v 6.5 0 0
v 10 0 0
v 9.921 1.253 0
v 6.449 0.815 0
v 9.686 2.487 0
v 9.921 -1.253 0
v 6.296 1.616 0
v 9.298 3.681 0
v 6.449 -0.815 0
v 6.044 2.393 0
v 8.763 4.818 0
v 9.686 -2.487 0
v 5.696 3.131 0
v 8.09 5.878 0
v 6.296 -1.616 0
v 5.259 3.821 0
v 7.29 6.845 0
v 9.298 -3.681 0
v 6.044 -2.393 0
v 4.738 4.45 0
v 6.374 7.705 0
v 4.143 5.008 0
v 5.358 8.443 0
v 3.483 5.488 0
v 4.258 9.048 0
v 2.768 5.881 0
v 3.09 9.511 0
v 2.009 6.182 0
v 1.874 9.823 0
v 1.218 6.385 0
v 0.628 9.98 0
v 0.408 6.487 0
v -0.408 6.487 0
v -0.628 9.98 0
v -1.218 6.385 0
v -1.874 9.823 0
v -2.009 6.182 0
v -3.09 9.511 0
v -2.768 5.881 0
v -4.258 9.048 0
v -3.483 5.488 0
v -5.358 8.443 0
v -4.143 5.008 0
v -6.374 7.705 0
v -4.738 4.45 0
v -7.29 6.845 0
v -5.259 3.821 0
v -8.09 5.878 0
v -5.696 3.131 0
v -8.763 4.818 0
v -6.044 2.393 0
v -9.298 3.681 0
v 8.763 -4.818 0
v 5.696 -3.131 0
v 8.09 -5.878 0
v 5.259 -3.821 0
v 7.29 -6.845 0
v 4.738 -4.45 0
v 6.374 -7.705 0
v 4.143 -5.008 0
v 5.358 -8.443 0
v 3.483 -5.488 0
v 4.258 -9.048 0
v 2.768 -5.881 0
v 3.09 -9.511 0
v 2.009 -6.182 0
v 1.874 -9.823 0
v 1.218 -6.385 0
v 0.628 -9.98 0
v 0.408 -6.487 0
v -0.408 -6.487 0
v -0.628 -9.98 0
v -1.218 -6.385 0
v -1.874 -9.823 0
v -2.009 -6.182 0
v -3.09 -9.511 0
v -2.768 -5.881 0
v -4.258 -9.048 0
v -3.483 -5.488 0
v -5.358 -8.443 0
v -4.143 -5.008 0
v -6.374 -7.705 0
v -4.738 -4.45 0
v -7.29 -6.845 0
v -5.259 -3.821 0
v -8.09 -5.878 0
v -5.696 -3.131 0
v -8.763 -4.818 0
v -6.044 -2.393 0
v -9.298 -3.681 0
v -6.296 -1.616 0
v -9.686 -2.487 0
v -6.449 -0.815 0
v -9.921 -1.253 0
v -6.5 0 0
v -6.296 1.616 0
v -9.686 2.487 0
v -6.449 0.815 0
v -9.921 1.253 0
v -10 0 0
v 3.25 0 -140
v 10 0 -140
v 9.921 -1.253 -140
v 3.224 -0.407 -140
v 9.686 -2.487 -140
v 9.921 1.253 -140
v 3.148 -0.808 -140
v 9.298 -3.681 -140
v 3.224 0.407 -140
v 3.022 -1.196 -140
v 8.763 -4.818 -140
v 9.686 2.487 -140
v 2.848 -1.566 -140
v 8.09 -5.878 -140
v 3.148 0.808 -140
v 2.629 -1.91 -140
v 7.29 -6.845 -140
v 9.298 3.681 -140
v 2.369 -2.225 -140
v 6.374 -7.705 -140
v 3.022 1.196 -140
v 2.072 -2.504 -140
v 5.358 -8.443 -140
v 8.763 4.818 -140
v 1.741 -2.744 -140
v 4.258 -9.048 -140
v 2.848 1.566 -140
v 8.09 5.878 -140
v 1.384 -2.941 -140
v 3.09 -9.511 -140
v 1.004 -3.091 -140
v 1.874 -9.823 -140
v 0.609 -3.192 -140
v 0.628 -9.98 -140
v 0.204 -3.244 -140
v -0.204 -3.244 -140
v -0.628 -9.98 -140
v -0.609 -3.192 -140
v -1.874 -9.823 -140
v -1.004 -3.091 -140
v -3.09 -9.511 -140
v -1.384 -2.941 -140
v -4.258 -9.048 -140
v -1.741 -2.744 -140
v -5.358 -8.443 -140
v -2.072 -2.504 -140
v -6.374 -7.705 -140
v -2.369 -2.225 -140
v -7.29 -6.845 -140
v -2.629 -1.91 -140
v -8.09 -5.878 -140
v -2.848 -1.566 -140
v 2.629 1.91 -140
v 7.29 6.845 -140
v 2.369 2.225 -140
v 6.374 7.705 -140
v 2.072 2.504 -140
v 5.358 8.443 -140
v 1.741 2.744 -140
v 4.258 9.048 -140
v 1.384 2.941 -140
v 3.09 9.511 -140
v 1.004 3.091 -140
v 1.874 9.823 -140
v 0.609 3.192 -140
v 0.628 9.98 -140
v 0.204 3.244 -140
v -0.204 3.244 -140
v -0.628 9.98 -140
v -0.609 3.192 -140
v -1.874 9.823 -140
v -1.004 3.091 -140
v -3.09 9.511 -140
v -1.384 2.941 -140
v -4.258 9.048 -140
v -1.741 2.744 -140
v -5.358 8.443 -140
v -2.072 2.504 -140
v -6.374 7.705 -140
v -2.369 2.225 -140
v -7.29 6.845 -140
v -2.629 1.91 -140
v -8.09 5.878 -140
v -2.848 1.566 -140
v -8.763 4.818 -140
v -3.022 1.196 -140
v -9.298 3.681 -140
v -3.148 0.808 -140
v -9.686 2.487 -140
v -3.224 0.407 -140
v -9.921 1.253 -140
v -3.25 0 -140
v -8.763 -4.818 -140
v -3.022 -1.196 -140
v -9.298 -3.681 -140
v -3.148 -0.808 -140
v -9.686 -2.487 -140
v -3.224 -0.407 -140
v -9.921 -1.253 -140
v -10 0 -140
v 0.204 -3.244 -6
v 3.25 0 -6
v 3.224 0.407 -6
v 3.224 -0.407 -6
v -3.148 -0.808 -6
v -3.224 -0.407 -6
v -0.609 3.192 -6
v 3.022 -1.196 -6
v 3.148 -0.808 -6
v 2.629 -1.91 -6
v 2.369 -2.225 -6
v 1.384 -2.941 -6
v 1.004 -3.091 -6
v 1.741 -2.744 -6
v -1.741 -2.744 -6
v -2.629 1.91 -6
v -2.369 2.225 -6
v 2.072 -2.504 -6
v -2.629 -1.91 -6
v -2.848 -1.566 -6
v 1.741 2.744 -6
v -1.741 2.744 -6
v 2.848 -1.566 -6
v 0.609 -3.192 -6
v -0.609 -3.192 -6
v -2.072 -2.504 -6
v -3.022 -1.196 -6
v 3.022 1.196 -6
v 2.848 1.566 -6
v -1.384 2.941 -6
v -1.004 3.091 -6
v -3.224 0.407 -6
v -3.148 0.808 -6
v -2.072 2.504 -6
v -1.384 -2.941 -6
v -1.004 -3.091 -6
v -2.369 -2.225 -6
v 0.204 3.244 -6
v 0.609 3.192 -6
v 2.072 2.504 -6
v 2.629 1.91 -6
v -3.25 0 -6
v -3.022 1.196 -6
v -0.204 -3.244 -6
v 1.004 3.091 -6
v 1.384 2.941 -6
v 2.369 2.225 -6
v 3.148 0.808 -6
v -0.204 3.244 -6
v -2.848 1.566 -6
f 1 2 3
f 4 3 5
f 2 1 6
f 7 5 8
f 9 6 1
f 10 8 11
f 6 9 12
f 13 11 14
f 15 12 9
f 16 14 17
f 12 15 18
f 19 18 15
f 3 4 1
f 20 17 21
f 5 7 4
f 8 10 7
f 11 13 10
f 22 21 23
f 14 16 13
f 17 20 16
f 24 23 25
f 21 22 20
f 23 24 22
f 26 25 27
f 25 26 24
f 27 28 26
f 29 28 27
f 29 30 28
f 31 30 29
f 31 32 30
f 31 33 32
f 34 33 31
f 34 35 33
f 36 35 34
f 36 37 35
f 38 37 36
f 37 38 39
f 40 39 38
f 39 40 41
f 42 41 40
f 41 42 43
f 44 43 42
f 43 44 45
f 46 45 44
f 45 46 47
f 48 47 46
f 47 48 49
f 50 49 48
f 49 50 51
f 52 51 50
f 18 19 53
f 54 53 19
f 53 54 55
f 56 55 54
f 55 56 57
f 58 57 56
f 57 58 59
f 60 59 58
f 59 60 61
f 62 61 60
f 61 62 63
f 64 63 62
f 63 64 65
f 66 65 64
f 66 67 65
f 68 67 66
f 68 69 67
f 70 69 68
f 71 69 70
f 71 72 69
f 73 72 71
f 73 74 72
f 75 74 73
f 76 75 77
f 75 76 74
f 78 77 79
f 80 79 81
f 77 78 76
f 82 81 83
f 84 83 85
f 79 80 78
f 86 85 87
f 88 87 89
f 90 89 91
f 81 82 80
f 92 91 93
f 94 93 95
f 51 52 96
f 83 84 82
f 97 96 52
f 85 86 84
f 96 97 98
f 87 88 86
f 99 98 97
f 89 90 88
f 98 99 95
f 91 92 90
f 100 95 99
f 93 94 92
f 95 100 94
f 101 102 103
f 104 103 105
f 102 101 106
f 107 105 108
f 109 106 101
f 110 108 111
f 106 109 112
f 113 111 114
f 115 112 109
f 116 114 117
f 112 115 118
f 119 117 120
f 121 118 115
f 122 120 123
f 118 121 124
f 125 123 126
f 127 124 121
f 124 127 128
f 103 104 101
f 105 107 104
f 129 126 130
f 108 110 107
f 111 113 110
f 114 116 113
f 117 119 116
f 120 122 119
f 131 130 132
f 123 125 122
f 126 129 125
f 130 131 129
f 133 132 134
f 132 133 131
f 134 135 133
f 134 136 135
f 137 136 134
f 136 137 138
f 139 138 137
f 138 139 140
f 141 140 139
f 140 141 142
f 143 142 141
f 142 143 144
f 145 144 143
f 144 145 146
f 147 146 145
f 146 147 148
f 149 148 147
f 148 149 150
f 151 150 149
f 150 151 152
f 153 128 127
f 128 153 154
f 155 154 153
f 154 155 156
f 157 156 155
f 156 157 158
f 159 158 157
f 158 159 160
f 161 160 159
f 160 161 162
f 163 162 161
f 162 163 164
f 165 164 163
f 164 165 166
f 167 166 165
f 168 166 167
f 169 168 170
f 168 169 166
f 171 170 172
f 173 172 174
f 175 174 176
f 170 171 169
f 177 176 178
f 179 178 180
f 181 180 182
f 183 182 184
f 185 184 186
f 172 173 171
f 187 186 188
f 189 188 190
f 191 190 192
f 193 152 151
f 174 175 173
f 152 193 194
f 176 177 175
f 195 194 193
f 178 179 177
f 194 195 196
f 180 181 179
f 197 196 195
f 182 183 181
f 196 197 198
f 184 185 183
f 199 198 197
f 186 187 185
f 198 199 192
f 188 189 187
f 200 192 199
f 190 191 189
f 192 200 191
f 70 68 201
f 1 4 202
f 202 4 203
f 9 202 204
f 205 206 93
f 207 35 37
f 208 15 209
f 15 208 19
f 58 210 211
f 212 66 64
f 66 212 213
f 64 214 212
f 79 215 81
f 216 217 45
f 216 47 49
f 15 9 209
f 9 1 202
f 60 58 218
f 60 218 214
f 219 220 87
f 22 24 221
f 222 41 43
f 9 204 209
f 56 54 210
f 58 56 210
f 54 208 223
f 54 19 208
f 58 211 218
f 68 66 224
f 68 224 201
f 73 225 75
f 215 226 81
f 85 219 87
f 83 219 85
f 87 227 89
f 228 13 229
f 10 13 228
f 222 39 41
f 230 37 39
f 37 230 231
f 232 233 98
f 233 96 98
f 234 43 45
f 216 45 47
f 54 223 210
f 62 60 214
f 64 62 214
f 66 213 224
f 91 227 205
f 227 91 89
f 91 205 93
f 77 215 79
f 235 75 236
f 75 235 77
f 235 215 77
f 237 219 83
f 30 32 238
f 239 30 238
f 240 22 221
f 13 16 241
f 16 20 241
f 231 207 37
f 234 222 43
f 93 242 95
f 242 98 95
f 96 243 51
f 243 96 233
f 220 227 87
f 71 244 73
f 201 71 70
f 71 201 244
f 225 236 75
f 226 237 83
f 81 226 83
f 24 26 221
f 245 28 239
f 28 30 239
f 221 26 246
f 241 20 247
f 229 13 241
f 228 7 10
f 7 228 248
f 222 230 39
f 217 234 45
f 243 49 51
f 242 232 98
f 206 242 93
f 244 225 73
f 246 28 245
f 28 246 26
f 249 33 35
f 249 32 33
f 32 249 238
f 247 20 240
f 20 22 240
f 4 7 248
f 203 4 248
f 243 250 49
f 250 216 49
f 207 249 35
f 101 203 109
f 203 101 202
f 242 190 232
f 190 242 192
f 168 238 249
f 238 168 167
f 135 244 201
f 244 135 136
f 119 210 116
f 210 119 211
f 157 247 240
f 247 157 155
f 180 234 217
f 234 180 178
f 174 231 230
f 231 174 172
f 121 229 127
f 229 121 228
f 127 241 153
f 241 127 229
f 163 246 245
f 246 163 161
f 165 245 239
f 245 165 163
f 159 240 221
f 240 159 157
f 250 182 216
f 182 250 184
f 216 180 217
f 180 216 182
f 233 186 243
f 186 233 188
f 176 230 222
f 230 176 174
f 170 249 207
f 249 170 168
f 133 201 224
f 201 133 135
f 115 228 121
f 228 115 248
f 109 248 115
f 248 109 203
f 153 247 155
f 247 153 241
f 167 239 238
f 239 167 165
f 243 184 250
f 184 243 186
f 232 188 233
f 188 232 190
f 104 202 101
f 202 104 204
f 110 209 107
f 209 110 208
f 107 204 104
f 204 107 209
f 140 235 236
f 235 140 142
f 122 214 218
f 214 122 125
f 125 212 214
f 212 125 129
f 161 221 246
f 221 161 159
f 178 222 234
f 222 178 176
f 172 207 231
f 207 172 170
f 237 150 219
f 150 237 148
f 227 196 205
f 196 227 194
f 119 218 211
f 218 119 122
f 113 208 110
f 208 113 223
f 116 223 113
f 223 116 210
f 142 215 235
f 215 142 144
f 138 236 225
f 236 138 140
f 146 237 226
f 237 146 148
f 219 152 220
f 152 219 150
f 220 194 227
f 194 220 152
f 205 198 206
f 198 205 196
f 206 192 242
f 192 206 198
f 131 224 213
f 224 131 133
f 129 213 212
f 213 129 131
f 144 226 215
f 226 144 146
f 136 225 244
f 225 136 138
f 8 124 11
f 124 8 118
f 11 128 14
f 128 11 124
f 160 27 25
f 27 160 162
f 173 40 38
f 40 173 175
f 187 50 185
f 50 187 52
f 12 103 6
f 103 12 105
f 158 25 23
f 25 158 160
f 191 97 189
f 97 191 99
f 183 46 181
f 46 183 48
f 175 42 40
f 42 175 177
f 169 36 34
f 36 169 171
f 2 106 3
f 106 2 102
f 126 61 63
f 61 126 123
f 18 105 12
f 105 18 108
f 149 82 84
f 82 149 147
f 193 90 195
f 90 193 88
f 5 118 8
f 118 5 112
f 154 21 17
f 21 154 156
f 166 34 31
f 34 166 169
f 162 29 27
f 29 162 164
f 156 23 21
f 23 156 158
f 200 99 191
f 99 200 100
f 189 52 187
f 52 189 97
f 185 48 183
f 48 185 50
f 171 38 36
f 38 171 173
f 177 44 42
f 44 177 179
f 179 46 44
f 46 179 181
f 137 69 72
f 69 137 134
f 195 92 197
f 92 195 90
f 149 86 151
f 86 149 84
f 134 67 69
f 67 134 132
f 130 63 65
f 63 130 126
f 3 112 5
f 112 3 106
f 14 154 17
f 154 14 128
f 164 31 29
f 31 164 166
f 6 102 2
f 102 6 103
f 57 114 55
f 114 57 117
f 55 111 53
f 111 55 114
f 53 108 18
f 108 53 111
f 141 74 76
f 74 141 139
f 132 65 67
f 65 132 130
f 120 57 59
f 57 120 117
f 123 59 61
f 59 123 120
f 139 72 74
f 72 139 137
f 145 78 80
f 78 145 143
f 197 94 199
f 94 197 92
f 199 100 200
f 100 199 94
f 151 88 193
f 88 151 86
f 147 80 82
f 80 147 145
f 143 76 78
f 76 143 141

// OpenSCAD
$fn = 50;


difference() {
	union() {
		translate(v = [0, 0, -140.0000000000]) {
			cylinder(h = 140, r = 10.0000000000);
		}
	}
	union() {
		translate(v = [0, 0, 0]) {
			rotate(a = [0, 0, 0]) {
				difference() {
					union() {
						#translate(v = [0, 0, -140.0000000000]) {
							cylinder(h = 140, r = 2.2500000000);
						}
						#translate(v = [0, 0, -6]) {
							cylinder(h = 6, r1 = 3.2500000000, r2 = 6.5000000000);
						}
						#translate(v = [0, 0, -140.0000000000]) {
							cylinder(h = 140, r = 3.2500000000);
						}
						#translate(v = [0, 0, -140.0000000000]) {
							cylinder(h = 140, r = 2.2500000000);
						}
					}
					union();
				}
			}
		}
	}
}
